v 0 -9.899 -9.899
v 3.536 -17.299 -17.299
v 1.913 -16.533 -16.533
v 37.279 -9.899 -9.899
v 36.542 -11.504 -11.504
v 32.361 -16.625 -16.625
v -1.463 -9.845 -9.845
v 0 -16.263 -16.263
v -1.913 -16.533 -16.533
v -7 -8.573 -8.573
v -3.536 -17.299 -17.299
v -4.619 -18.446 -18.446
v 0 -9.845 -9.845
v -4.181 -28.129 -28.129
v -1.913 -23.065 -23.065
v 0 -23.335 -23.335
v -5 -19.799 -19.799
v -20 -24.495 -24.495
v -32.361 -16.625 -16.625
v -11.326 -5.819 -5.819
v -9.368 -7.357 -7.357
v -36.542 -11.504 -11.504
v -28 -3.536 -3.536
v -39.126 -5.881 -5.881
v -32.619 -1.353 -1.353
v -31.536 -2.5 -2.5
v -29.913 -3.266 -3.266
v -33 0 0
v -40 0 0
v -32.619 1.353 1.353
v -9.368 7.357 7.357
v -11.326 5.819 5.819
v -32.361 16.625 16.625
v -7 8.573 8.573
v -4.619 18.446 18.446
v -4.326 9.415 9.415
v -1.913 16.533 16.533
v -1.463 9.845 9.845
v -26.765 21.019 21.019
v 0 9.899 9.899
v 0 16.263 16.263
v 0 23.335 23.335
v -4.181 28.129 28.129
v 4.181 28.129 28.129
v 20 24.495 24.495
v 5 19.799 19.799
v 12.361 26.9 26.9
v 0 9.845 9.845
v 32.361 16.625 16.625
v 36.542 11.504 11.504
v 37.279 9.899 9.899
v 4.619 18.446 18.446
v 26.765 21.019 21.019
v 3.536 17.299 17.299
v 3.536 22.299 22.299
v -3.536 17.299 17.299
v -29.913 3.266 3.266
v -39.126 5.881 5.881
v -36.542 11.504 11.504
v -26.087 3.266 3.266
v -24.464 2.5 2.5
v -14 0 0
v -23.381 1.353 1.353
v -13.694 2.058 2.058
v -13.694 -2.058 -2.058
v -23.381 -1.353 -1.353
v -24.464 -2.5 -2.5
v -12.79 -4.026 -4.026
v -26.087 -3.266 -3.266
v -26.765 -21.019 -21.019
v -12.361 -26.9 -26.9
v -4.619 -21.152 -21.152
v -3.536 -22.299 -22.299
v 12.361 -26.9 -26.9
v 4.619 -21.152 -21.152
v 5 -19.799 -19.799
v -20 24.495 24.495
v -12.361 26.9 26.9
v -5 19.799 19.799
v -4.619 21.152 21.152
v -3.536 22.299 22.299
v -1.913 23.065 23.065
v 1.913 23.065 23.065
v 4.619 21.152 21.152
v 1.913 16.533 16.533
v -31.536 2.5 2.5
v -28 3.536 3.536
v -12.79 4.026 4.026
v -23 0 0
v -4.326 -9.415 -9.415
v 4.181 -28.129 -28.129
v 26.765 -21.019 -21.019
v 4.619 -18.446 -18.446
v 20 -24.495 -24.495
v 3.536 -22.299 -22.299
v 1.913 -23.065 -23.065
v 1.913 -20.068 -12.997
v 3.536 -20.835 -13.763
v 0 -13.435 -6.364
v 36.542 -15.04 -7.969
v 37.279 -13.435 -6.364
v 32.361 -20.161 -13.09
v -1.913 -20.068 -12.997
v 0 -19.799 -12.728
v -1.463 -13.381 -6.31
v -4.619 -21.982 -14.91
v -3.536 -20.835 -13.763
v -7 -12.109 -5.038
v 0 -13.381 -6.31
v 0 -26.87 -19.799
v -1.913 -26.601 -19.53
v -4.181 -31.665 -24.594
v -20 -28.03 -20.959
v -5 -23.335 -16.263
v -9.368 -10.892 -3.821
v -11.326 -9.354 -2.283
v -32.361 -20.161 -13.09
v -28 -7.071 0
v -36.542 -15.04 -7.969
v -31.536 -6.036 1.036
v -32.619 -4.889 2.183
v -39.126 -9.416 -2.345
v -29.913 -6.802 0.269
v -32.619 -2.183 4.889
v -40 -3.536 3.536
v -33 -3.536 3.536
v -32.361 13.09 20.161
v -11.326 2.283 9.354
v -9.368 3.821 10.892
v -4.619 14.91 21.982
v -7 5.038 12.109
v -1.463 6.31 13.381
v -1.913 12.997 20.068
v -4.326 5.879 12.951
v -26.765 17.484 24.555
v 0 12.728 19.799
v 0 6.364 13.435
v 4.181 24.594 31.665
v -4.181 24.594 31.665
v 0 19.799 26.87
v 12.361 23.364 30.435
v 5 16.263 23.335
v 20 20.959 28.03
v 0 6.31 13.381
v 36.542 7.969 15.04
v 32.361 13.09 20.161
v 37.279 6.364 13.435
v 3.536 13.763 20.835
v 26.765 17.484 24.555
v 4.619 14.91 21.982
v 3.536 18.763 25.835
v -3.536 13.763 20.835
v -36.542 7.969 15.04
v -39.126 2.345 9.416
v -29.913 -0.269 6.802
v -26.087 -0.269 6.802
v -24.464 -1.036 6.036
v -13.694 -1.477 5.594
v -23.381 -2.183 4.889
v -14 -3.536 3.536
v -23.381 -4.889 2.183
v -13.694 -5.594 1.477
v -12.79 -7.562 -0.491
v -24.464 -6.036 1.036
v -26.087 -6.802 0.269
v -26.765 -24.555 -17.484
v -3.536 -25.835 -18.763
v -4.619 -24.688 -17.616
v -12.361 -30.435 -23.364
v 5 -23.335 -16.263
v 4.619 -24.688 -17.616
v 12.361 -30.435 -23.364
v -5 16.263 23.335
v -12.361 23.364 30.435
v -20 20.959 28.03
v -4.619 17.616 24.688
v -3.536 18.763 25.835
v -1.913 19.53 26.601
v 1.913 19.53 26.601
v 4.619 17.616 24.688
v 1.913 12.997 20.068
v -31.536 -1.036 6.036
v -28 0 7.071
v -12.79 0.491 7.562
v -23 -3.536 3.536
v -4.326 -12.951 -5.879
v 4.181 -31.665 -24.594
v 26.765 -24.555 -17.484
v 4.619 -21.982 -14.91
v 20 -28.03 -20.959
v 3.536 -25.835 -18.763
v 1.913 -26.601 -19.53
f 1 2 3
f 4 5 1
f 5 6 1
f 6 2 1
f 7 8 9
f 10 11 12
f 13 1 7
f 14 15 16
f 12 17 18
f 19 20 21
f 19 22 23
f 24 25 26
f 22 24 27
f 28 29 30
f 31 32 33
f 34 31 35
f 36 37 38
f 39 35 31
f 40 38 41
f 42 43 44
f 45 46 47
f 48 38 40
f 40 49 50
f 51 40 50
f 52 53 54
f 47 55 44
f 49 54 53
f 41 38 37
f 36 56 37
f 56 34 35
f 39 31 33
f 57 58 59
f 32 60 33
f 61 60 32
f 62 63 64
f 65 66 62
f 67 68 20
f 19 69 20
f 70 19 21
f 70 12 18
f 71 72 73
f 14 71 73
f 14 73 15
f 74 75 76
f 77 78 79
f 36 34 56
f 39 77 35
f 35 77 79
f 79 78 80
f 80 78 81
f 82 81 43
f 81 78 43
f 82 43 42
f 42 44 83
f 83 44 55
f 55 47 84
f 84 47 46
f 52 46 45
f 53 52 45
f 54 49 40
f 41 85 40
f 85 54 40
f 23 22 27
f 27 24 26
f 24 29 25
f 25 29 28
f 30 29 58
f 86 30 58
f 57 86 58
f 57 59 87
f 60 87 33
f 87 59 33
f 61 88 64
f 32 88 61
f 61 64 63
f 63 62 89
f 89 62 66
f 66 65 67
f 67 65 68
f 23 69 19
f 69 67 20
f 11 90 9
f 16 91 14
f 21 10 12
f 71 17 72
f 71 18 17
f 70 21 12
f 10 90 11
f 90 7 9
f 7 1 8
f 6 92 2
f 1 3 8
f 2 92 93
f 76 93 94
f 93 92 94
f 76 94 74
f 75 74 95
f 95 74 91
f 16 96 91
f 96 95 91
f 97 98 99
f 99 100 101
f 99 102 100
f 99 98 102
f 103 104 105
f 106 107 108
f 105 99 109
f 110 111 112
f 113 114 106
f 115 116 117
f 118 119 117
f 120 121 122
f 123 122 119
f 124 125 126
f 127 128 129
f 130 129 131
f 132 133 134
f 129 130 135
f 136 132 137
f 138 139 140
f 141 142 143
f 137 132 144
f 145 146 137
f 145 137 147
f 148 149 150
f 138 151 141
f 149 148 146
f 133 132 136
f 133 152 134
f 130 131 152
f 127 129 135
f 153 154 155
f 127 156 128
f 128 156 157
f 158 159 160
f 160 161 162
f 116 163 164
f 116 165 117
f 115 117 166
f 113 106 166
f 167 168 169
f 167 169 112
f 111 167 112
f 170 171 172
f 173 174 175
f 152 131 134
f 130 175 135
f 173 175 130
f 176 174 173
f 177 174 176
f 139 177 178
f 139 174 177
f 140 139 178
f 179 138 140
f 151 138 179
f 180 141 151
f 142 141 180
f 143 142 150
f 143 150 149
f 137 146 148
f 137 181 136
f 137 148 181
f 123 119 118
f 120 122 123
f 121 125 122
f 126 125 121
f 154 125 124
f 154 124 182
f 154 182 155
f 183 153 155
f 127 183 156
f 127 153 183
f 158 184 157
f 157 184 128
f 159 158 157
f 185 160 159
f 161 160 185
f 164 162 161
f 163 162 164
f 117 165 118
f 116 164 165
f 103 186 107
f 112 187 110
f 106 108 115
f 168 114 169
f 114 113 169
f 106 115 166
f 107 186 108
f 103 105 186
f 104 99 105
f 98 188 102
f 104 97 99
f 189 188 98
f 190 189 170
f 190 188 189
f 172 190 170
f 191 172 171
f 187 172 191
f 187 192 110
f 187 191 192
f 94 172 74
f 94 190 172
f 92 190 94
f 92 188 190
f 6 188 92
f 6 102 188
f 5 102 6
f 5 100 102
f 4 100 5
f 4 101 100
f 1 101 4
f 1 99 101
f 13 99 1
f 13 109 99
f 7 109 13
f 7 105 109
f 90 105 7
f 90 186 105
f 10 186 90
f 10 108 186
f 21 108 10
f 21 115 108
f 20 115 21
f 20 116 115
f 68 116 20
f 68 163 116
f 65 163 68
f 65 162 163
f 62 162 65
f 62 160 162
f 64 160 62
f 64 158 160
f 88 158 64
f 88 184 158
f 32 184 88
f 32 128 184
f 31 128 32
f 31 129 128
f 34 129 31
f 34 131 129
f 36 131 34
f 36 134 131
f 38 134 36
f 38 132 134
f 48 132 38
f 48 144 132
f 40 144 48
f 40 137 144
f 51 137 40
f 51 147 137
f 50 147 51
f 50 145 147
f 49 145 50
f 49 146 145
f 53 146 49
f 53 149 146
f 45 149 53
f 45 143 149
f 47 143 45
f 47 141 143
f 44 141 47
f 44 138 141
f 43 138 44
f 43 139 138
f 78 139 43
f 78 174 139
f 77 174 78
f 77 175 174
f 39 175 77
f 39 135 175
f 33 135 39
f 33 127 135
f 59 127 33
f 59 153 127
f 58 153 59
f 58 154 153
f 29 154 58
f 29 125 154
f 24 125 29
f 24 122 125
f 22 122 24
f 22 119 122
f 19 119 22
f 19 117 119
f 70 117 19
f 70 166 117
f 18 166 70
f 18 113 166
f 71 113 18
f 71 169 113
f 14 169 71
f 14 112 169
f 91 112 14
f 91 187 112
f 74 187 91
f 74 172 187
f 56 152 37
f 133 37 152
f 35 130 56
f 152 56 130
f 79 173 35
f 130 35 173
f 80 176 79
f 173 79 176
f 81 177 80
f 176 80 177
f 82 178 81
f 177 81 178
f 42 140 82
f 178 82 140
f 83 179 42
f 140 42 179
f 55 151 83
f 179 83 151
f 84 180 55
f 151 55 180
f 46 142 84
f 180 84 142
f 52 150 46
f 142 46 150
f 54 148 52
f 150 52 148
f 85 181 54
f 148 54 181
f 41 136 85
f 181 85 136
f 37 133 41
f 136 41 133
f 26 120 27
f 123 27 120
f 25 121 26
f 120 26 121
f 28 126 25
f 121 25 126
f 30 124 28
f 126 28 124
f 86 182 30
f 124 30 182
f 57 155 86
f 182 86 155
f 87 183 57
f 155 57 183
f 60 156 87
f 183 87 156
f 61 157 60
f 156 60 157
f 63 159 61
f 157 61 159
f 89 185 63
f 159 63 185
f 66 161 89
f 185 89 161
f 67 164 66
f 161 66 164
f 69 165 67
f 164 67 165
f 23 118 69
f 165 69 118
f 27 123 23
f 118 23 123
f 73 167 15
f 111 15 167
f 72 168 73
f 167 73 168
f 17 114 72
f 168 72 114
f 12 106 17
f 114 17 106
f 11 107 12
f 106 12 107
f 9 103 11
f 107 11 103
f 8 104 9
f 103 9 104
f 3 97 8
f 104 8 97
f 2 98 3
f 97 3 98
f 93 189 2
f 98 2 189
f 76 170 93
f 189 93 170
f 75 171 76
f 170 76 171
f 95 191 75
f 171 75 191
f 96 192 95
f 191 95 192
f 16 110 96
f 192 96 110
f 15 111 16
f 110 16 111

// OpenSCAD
rotate([45,0,0])
linear_extrude(5)
difference() {
    circle(40);
    
    translate([-28,0]) circle(5);
    translate([0,28]) circle(5);
    translate([0,-28]) circle(5);
    
    circle(14);
    translate([0,-14]) square([40,28]);
    
}
